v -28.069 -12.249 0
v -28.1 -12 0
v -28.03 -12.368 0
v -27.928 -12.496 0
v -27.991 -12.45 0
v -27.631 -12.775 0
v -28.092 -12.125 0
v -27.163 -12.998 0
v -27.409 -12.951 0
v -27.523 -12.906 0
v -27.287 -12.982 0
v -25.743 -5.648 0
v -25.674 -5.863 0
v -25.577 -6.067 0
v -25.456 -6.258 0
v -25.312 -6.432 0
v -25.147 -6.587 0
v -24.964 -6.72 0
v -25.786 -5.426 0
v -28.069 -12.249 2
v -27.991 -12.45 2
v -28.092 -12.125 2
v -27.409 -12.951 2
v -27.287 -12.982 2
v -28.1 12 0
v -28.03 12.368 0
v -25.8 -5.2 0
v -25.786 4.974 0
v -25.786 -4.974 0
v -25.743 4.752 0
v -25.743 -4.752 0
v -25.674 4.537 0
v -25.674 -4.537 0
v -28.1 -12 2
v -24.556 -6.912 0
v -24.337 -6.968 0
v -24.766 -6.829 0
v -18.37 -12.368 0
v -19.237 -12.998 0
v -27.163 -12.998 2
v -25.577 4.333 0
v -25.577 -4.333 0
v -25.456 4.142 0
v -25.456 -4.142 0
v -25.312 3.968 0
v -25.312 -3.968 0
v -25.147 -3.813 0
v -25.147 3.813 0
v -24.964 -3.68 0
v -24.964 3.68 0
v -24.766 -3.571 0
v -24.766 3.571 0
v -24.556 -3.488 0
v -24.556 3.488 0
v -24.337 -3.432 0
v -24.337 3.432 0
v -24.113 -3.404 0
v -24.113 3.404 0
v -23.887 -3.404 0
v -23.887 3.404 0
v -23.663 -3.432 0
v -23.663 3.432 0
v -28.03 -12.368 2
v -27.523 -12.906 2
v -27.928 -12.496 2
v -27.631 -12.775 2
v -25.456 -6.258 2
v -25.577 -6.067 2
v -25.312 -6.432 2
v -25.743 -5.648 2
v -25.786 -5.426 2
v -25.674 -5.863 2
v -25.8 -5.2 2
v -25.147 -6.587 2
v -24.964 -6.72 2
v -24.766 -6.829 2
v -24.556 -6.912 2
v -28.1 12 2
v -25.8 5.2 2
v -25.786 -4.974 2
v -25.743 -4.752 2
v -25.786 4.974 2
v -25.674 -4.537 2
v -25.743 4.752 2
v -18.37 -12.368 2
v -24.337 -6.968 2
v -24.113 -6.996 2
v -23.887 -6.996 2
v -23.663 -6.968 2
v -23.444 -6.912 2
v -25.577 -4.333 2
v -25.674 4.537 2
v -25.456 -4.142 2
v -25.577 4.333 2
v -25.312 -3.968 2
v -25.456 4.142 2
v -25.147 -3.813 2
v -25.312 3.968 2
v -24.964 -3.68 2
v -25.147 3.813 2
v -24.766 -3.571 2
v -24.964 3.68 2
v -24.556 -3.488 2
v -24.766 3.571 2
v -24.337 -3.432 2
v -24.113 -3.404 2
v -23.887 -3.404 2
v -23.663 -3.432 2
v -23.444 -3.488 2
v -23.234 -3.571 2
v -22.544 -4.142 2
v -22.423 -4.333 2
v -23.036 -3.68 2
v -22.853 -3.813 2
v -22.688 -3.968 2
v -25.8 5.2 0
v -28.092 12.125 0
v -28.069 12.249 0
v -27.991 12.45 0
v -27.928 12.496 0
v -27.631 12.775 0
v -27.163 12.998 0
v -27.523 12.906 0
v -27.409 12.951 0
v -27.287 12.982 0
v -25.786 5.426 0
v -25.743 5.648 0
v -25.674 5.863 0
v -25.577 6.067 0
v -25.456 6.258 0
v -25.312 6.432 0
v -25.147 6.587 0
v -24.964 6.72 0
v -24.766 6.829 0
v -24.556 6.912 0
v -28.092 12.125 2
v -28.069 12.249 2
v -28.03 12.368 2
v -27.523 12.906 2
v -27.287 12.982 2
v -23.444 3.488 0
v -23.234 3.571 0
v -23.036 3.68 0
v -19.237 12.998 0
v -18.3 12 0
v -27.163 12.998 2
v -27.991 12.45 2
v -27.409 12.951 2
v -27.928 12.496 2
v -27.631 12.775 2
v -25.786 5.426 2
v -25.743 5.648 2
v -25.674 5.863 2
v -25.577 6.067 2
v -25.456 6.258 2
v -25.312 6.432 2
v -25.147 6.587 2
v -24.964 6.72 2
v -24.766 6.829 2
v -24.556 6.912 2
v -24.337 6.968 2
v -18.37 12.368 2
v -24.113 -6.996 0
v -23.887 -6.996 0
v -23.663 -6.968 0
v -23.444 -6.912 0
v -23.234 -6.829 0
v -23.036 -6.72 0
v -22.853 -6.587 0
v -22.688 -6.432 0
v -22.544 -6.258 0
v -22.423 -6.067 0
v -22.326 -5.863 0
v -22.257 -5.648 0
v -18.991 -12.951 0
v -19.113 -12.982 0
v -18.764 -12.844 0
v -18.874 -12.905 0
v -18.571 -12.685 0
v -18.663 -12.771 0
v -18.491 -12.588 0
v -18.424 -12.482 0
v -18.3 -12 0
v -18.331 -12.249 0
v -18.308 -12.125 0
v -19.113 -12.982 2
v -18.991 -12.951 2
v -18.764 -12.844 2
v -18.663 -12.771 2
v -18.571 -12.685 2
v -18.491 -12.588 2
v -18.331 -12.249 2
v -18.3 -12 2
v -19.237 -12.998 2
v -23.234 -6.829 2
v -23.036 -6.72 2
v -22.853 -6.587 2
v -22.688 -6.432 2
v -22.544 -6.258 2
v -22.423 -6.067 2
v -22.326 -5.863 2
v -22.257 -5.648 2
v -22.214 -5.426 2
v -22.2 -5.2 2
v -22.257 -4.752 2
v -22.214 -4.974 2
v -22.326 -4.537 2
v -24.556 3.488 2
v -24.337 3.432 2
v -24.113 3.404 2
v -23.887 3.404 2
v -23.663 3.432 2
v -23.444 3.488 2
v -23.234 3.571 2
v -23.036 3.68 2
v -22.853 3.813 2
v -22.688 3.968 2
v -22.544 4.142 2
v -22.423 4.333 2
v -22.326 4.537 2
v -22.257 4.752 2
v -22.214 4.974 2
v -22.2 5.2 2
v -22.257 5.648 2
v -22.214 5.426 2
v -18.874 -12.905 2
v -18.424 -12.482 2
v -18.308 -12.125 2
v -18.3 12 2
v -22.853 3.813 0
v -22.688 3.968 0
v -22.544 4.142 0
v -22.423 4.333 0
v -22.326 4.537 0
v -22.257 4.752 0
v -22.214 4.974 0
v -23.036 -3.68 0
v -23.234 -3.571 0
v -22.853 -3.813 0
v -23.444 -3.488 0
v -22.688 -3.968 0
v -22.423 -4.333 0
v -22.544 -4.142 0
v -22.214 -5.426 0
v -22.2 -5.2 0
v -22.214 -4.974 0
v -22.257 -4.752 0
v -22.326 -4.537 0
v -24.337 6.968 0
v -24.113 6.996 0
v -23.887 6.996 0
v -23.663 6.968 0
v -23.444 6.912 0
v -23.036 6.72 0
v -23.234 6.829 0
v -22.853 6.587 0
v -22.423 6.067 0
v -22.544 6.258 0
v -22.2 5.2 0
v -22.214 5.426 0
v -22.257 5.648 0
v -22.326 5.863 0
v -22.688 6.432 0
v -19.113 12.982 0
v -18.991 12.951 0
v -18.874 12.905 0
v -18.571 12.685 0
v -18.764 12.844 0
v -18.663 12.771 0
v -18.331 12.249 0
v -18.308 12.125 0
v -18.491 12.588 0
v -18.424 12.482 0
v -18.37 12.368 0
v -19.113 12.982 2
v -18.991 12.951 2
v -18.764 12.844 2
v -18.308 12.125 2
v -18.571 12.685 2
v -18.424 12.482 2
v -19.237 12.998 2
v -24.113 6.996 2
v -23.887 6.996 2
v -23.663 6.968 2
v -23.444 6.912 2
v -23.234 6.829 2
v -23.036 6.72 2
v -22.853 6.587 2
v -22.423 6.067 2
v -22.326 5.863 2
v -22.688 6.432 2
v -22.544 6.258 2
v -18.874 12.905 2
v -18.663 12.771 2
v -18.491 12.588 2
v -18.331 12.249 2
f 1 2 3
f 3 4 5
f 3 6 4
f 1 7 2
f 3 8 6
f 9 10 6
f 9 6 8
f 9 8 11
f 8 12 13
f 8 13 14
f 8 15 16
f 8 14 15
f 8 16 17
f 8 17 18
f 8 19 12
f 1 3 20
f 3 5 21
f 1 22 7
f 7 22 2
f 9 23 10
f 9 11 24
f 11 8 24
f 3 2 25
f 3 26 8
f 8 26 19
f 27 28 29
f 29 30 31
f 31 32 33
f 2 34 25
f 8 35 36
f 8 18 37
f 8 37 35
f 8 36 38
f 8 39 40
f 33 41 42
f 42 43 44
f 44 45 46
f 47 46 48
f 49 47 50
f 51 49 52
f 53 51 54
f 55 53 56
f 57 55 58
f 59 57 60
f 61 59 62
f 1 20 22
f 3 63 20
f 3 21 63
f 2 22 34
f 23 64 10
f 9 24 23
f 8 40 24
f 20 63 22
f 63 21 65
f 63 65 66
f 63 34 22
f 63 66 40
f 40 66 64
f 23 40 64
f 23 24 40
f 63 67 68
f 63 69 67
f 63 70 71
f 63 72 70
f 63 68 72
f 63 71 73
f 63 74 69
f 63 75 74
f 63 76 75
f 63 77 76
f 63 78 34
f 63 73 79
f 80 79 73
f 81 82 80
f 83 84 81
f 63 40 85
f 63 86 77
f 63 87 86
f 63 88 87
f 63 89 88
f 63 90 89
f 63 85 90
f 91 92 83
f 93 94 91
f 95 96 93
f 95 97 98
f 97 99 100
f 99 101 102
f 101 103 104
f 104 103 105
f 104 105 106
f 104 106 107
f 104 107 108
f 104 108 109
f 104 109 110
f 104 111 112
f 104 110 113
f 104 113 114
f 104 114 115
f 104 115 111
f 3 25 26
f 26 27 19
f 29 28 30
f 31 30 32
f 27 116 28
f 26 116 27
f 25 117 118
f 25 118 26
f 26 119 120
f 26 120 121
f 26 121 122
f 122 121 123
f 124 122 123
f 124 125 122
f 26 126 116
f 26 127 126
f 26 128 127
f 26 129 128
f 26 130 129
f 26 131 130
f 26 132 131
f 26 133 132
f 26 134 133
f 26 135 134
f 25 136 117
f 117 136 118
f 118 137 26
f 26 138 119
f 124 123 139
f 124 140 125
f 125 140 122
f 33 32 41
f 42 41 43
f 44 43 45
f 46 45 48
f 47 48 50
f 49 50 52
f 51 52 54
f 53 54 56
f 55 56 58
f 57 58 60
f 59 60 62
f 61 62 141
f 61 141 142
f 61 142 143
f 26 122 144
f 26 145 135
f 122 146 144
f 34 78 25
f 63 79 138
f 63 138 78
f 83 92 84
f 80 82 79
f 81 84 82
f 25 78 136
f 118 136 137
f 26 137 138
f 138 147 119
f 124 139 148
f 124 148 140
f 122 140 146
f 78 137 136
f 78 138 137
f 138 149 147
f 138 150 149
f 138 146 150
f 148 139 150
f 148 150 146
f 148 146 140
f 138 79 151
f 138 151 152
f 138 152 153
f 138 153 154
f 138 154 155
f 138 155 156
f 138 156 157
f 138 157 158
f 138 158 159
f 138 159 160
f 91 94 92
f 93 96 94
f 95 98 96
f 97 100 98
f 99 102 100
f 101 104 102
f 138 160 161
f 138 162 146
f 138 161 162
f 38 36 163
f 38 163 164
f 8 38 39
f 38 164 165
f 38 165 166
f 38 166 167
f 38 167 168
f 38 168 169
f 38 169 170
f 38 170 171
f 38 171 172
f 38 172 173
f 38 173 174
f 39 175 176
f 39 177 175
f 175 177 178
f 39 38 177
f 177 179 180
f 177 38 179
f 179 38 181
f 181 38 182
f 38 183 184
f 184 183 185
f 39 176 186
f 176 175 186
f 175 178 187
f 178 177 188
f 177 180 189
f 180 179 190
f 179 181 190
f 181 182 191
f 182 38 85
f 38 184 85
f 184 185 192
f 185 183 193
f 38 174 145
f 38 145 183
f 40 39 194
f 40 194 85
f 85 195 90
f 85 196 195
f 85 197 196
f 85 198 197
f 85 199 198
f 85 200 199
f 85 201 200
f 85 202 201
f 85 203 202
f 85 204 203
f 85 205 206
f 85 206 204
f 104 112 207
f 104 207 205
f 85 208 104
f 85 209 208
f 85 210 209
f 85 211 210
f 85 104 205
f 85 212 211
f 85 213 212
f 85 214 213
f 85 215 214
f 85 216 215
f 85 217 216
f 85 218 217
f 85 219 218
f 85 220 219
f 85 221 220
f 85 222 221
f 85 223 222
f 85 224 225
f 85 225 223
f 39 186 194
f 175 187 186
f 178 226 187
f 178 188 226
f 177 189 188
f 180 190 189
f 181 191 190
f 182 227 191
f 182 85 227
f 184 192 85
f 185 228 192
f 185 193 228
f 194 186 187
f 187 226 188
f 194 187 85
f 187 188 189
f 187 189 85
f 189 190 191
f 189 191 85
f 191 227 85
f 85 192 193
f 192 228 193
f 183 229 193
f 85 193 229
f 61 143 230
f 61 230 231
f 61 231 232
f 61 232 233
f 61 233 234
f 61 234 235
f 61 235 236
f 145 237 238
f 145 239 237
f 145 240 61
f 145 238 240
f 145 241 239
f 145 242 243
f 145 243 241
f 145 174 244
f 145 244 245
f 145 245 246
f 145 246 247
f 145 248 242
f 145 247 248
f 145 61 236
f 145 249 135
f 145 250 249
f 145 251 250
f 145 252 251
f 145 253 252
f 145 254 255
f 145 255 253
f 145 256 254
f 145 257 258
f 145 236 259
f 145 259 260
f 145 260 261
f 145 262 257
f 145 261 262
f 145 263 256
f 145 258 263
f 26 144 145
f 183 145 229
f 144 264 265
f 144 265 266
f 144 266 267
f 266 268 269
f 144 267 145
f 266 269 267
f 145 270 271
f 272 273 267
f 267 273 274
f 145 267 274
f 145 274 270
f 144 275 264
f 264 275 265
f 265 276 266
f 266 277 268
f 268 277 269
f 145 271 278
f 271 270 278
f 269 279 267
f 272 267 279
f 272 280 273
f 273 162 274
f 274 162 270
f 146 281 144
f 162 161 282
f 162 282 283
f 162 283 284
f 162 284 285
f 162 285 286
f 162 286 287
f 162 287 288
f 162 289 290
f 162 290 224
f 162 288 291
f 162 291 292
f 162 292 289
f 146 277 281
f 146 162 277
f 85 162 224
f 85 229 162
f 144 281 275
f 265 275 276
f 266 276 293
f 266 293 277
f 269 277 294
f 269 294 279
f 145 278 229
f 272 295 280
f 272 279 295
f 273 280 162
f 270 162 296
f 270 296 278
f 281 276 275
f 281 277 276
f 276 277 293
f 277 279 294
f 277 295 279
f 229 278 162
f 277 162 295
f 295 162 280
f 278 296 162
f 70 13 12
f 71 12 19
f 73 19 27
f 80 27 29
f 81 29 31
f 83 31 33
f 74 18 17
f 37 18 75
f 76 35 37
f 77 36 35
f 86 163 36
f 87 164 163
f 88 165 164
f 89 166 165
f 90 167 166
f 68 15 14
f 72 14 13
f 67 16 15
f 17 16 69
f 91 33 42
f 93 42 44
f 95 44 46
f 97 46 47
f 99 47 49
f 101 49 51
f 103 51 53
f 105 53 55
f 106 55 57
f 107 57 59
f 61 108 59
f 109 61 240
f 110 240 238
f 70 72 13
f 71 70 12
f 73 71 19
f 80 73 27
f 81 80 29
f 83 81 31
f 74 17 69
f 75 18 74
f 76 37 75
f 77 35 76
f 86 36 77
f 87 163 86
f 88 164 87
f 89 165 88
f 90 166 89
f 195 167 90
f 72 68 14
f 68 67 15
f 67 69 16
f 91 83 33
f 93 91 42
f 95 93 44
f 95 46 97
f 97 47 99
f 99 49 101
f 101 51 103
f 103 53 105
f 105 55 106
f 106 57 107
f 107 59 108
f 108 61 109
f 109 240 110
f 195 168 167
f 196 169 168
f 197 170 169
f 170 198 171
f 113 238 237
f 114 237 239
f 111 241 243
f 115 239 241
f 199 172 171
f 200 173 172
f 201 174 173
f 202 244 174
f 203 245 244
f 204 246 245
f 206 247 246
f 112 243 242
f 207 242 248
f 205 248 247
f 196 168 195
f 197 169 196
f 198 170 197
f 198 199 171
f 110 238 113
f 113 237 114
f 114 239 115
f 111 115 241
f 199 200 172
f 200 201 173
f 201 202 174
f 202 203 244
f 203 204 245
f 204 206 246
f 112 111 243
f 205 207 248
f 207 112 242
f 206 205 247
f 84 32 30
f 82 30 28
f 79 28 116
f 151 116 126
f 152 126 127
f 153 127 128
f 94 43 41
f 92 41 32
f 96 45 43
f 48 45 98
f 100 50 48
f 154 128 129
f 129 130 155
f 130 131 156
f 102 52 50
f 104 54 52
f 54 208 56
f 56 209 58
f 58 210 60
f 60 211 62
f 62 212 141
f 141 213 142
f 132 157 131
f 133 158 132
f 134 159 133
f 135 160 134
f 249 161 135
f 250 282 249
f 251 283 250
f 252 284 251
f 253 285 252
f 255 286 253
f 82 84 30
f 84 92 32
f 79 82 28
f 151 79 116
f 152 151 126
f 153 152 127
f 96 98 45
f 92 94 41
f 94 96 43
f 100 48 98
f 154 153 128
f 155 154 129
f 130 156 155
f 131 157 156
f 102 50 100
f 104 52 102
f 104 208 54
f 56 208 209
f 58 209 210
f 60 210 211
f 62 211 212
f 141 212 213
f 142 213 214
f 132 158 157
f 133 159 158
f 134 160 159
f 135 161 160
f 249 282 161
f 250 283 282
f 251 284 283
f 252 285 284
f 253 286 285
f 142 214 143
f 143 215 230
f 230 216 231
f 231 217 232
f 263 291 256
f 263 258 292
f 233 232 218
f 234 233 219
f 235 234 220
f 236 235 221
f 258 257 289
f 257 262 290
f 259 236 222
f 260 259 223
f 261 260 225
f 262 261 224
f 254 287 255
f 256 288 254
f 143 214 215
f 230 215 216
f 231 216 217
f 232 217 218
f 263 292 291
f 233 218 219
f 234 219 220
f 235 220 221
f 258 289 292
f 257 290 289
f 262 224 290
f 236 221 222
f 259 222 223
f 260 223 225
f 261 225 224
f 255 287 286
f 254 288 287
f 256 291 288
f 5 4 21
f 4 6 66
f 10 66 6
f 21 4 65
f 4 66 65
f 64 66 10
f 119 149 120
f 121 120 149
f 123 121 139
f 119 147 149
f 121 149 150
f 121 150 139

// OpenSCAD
$fn = 50;

difference() {
	union() {
		translate(v = [0, 0, 4.5]) {
			rotate(a = [0, 0, 0]) {
				difference() {
					union() {
						translate(v = [-23.2, 0, -4.5]) {
							hull() {
								translate(v = [-3.9000000000000004, 12.0, 0]) {
									cylinder(h = 2, r = 1);
								}
								translate(v = [3.9000000000000004, 12.0, 0]) {
									cylinder(h = 2, r = 1);
								}
								translate(v = [-3.9000000000000004, -12.0, 0]) {
									cylinder(h = 2, r = 1);
								}
								translate(v = [3.9000000000000004, -12.0, 0]) {
									cylinder(h = 2, r = 1);
								}
							}
						}
					}
					union() {
						translate(v = [-24, -5.2, -5.5]) {
							cylinder(h = 4, r = 1.8);
						}
						translate(v = [-24, 5.2, -5.5]) {
							cylinder(h = 4, r = 1.8);
						}
						translate(v = [-30, -15, -5.5]) {
							cylinder(h = 4, r = 3.25);
						}
						translate(v = [-30, 15, -5.5]) {
							cylinder(h = 4, r = 3.25);
						}
						translate(v = [15, -15, -5.5]) {
							cylinder(h = 4, r = 3.25);
						}
						translate(v = [15, 15, -5.5]) {
							cylinder(h = 4, r = 3.25);
						}
					}
				}
			}
		}
	}
	union();
}
